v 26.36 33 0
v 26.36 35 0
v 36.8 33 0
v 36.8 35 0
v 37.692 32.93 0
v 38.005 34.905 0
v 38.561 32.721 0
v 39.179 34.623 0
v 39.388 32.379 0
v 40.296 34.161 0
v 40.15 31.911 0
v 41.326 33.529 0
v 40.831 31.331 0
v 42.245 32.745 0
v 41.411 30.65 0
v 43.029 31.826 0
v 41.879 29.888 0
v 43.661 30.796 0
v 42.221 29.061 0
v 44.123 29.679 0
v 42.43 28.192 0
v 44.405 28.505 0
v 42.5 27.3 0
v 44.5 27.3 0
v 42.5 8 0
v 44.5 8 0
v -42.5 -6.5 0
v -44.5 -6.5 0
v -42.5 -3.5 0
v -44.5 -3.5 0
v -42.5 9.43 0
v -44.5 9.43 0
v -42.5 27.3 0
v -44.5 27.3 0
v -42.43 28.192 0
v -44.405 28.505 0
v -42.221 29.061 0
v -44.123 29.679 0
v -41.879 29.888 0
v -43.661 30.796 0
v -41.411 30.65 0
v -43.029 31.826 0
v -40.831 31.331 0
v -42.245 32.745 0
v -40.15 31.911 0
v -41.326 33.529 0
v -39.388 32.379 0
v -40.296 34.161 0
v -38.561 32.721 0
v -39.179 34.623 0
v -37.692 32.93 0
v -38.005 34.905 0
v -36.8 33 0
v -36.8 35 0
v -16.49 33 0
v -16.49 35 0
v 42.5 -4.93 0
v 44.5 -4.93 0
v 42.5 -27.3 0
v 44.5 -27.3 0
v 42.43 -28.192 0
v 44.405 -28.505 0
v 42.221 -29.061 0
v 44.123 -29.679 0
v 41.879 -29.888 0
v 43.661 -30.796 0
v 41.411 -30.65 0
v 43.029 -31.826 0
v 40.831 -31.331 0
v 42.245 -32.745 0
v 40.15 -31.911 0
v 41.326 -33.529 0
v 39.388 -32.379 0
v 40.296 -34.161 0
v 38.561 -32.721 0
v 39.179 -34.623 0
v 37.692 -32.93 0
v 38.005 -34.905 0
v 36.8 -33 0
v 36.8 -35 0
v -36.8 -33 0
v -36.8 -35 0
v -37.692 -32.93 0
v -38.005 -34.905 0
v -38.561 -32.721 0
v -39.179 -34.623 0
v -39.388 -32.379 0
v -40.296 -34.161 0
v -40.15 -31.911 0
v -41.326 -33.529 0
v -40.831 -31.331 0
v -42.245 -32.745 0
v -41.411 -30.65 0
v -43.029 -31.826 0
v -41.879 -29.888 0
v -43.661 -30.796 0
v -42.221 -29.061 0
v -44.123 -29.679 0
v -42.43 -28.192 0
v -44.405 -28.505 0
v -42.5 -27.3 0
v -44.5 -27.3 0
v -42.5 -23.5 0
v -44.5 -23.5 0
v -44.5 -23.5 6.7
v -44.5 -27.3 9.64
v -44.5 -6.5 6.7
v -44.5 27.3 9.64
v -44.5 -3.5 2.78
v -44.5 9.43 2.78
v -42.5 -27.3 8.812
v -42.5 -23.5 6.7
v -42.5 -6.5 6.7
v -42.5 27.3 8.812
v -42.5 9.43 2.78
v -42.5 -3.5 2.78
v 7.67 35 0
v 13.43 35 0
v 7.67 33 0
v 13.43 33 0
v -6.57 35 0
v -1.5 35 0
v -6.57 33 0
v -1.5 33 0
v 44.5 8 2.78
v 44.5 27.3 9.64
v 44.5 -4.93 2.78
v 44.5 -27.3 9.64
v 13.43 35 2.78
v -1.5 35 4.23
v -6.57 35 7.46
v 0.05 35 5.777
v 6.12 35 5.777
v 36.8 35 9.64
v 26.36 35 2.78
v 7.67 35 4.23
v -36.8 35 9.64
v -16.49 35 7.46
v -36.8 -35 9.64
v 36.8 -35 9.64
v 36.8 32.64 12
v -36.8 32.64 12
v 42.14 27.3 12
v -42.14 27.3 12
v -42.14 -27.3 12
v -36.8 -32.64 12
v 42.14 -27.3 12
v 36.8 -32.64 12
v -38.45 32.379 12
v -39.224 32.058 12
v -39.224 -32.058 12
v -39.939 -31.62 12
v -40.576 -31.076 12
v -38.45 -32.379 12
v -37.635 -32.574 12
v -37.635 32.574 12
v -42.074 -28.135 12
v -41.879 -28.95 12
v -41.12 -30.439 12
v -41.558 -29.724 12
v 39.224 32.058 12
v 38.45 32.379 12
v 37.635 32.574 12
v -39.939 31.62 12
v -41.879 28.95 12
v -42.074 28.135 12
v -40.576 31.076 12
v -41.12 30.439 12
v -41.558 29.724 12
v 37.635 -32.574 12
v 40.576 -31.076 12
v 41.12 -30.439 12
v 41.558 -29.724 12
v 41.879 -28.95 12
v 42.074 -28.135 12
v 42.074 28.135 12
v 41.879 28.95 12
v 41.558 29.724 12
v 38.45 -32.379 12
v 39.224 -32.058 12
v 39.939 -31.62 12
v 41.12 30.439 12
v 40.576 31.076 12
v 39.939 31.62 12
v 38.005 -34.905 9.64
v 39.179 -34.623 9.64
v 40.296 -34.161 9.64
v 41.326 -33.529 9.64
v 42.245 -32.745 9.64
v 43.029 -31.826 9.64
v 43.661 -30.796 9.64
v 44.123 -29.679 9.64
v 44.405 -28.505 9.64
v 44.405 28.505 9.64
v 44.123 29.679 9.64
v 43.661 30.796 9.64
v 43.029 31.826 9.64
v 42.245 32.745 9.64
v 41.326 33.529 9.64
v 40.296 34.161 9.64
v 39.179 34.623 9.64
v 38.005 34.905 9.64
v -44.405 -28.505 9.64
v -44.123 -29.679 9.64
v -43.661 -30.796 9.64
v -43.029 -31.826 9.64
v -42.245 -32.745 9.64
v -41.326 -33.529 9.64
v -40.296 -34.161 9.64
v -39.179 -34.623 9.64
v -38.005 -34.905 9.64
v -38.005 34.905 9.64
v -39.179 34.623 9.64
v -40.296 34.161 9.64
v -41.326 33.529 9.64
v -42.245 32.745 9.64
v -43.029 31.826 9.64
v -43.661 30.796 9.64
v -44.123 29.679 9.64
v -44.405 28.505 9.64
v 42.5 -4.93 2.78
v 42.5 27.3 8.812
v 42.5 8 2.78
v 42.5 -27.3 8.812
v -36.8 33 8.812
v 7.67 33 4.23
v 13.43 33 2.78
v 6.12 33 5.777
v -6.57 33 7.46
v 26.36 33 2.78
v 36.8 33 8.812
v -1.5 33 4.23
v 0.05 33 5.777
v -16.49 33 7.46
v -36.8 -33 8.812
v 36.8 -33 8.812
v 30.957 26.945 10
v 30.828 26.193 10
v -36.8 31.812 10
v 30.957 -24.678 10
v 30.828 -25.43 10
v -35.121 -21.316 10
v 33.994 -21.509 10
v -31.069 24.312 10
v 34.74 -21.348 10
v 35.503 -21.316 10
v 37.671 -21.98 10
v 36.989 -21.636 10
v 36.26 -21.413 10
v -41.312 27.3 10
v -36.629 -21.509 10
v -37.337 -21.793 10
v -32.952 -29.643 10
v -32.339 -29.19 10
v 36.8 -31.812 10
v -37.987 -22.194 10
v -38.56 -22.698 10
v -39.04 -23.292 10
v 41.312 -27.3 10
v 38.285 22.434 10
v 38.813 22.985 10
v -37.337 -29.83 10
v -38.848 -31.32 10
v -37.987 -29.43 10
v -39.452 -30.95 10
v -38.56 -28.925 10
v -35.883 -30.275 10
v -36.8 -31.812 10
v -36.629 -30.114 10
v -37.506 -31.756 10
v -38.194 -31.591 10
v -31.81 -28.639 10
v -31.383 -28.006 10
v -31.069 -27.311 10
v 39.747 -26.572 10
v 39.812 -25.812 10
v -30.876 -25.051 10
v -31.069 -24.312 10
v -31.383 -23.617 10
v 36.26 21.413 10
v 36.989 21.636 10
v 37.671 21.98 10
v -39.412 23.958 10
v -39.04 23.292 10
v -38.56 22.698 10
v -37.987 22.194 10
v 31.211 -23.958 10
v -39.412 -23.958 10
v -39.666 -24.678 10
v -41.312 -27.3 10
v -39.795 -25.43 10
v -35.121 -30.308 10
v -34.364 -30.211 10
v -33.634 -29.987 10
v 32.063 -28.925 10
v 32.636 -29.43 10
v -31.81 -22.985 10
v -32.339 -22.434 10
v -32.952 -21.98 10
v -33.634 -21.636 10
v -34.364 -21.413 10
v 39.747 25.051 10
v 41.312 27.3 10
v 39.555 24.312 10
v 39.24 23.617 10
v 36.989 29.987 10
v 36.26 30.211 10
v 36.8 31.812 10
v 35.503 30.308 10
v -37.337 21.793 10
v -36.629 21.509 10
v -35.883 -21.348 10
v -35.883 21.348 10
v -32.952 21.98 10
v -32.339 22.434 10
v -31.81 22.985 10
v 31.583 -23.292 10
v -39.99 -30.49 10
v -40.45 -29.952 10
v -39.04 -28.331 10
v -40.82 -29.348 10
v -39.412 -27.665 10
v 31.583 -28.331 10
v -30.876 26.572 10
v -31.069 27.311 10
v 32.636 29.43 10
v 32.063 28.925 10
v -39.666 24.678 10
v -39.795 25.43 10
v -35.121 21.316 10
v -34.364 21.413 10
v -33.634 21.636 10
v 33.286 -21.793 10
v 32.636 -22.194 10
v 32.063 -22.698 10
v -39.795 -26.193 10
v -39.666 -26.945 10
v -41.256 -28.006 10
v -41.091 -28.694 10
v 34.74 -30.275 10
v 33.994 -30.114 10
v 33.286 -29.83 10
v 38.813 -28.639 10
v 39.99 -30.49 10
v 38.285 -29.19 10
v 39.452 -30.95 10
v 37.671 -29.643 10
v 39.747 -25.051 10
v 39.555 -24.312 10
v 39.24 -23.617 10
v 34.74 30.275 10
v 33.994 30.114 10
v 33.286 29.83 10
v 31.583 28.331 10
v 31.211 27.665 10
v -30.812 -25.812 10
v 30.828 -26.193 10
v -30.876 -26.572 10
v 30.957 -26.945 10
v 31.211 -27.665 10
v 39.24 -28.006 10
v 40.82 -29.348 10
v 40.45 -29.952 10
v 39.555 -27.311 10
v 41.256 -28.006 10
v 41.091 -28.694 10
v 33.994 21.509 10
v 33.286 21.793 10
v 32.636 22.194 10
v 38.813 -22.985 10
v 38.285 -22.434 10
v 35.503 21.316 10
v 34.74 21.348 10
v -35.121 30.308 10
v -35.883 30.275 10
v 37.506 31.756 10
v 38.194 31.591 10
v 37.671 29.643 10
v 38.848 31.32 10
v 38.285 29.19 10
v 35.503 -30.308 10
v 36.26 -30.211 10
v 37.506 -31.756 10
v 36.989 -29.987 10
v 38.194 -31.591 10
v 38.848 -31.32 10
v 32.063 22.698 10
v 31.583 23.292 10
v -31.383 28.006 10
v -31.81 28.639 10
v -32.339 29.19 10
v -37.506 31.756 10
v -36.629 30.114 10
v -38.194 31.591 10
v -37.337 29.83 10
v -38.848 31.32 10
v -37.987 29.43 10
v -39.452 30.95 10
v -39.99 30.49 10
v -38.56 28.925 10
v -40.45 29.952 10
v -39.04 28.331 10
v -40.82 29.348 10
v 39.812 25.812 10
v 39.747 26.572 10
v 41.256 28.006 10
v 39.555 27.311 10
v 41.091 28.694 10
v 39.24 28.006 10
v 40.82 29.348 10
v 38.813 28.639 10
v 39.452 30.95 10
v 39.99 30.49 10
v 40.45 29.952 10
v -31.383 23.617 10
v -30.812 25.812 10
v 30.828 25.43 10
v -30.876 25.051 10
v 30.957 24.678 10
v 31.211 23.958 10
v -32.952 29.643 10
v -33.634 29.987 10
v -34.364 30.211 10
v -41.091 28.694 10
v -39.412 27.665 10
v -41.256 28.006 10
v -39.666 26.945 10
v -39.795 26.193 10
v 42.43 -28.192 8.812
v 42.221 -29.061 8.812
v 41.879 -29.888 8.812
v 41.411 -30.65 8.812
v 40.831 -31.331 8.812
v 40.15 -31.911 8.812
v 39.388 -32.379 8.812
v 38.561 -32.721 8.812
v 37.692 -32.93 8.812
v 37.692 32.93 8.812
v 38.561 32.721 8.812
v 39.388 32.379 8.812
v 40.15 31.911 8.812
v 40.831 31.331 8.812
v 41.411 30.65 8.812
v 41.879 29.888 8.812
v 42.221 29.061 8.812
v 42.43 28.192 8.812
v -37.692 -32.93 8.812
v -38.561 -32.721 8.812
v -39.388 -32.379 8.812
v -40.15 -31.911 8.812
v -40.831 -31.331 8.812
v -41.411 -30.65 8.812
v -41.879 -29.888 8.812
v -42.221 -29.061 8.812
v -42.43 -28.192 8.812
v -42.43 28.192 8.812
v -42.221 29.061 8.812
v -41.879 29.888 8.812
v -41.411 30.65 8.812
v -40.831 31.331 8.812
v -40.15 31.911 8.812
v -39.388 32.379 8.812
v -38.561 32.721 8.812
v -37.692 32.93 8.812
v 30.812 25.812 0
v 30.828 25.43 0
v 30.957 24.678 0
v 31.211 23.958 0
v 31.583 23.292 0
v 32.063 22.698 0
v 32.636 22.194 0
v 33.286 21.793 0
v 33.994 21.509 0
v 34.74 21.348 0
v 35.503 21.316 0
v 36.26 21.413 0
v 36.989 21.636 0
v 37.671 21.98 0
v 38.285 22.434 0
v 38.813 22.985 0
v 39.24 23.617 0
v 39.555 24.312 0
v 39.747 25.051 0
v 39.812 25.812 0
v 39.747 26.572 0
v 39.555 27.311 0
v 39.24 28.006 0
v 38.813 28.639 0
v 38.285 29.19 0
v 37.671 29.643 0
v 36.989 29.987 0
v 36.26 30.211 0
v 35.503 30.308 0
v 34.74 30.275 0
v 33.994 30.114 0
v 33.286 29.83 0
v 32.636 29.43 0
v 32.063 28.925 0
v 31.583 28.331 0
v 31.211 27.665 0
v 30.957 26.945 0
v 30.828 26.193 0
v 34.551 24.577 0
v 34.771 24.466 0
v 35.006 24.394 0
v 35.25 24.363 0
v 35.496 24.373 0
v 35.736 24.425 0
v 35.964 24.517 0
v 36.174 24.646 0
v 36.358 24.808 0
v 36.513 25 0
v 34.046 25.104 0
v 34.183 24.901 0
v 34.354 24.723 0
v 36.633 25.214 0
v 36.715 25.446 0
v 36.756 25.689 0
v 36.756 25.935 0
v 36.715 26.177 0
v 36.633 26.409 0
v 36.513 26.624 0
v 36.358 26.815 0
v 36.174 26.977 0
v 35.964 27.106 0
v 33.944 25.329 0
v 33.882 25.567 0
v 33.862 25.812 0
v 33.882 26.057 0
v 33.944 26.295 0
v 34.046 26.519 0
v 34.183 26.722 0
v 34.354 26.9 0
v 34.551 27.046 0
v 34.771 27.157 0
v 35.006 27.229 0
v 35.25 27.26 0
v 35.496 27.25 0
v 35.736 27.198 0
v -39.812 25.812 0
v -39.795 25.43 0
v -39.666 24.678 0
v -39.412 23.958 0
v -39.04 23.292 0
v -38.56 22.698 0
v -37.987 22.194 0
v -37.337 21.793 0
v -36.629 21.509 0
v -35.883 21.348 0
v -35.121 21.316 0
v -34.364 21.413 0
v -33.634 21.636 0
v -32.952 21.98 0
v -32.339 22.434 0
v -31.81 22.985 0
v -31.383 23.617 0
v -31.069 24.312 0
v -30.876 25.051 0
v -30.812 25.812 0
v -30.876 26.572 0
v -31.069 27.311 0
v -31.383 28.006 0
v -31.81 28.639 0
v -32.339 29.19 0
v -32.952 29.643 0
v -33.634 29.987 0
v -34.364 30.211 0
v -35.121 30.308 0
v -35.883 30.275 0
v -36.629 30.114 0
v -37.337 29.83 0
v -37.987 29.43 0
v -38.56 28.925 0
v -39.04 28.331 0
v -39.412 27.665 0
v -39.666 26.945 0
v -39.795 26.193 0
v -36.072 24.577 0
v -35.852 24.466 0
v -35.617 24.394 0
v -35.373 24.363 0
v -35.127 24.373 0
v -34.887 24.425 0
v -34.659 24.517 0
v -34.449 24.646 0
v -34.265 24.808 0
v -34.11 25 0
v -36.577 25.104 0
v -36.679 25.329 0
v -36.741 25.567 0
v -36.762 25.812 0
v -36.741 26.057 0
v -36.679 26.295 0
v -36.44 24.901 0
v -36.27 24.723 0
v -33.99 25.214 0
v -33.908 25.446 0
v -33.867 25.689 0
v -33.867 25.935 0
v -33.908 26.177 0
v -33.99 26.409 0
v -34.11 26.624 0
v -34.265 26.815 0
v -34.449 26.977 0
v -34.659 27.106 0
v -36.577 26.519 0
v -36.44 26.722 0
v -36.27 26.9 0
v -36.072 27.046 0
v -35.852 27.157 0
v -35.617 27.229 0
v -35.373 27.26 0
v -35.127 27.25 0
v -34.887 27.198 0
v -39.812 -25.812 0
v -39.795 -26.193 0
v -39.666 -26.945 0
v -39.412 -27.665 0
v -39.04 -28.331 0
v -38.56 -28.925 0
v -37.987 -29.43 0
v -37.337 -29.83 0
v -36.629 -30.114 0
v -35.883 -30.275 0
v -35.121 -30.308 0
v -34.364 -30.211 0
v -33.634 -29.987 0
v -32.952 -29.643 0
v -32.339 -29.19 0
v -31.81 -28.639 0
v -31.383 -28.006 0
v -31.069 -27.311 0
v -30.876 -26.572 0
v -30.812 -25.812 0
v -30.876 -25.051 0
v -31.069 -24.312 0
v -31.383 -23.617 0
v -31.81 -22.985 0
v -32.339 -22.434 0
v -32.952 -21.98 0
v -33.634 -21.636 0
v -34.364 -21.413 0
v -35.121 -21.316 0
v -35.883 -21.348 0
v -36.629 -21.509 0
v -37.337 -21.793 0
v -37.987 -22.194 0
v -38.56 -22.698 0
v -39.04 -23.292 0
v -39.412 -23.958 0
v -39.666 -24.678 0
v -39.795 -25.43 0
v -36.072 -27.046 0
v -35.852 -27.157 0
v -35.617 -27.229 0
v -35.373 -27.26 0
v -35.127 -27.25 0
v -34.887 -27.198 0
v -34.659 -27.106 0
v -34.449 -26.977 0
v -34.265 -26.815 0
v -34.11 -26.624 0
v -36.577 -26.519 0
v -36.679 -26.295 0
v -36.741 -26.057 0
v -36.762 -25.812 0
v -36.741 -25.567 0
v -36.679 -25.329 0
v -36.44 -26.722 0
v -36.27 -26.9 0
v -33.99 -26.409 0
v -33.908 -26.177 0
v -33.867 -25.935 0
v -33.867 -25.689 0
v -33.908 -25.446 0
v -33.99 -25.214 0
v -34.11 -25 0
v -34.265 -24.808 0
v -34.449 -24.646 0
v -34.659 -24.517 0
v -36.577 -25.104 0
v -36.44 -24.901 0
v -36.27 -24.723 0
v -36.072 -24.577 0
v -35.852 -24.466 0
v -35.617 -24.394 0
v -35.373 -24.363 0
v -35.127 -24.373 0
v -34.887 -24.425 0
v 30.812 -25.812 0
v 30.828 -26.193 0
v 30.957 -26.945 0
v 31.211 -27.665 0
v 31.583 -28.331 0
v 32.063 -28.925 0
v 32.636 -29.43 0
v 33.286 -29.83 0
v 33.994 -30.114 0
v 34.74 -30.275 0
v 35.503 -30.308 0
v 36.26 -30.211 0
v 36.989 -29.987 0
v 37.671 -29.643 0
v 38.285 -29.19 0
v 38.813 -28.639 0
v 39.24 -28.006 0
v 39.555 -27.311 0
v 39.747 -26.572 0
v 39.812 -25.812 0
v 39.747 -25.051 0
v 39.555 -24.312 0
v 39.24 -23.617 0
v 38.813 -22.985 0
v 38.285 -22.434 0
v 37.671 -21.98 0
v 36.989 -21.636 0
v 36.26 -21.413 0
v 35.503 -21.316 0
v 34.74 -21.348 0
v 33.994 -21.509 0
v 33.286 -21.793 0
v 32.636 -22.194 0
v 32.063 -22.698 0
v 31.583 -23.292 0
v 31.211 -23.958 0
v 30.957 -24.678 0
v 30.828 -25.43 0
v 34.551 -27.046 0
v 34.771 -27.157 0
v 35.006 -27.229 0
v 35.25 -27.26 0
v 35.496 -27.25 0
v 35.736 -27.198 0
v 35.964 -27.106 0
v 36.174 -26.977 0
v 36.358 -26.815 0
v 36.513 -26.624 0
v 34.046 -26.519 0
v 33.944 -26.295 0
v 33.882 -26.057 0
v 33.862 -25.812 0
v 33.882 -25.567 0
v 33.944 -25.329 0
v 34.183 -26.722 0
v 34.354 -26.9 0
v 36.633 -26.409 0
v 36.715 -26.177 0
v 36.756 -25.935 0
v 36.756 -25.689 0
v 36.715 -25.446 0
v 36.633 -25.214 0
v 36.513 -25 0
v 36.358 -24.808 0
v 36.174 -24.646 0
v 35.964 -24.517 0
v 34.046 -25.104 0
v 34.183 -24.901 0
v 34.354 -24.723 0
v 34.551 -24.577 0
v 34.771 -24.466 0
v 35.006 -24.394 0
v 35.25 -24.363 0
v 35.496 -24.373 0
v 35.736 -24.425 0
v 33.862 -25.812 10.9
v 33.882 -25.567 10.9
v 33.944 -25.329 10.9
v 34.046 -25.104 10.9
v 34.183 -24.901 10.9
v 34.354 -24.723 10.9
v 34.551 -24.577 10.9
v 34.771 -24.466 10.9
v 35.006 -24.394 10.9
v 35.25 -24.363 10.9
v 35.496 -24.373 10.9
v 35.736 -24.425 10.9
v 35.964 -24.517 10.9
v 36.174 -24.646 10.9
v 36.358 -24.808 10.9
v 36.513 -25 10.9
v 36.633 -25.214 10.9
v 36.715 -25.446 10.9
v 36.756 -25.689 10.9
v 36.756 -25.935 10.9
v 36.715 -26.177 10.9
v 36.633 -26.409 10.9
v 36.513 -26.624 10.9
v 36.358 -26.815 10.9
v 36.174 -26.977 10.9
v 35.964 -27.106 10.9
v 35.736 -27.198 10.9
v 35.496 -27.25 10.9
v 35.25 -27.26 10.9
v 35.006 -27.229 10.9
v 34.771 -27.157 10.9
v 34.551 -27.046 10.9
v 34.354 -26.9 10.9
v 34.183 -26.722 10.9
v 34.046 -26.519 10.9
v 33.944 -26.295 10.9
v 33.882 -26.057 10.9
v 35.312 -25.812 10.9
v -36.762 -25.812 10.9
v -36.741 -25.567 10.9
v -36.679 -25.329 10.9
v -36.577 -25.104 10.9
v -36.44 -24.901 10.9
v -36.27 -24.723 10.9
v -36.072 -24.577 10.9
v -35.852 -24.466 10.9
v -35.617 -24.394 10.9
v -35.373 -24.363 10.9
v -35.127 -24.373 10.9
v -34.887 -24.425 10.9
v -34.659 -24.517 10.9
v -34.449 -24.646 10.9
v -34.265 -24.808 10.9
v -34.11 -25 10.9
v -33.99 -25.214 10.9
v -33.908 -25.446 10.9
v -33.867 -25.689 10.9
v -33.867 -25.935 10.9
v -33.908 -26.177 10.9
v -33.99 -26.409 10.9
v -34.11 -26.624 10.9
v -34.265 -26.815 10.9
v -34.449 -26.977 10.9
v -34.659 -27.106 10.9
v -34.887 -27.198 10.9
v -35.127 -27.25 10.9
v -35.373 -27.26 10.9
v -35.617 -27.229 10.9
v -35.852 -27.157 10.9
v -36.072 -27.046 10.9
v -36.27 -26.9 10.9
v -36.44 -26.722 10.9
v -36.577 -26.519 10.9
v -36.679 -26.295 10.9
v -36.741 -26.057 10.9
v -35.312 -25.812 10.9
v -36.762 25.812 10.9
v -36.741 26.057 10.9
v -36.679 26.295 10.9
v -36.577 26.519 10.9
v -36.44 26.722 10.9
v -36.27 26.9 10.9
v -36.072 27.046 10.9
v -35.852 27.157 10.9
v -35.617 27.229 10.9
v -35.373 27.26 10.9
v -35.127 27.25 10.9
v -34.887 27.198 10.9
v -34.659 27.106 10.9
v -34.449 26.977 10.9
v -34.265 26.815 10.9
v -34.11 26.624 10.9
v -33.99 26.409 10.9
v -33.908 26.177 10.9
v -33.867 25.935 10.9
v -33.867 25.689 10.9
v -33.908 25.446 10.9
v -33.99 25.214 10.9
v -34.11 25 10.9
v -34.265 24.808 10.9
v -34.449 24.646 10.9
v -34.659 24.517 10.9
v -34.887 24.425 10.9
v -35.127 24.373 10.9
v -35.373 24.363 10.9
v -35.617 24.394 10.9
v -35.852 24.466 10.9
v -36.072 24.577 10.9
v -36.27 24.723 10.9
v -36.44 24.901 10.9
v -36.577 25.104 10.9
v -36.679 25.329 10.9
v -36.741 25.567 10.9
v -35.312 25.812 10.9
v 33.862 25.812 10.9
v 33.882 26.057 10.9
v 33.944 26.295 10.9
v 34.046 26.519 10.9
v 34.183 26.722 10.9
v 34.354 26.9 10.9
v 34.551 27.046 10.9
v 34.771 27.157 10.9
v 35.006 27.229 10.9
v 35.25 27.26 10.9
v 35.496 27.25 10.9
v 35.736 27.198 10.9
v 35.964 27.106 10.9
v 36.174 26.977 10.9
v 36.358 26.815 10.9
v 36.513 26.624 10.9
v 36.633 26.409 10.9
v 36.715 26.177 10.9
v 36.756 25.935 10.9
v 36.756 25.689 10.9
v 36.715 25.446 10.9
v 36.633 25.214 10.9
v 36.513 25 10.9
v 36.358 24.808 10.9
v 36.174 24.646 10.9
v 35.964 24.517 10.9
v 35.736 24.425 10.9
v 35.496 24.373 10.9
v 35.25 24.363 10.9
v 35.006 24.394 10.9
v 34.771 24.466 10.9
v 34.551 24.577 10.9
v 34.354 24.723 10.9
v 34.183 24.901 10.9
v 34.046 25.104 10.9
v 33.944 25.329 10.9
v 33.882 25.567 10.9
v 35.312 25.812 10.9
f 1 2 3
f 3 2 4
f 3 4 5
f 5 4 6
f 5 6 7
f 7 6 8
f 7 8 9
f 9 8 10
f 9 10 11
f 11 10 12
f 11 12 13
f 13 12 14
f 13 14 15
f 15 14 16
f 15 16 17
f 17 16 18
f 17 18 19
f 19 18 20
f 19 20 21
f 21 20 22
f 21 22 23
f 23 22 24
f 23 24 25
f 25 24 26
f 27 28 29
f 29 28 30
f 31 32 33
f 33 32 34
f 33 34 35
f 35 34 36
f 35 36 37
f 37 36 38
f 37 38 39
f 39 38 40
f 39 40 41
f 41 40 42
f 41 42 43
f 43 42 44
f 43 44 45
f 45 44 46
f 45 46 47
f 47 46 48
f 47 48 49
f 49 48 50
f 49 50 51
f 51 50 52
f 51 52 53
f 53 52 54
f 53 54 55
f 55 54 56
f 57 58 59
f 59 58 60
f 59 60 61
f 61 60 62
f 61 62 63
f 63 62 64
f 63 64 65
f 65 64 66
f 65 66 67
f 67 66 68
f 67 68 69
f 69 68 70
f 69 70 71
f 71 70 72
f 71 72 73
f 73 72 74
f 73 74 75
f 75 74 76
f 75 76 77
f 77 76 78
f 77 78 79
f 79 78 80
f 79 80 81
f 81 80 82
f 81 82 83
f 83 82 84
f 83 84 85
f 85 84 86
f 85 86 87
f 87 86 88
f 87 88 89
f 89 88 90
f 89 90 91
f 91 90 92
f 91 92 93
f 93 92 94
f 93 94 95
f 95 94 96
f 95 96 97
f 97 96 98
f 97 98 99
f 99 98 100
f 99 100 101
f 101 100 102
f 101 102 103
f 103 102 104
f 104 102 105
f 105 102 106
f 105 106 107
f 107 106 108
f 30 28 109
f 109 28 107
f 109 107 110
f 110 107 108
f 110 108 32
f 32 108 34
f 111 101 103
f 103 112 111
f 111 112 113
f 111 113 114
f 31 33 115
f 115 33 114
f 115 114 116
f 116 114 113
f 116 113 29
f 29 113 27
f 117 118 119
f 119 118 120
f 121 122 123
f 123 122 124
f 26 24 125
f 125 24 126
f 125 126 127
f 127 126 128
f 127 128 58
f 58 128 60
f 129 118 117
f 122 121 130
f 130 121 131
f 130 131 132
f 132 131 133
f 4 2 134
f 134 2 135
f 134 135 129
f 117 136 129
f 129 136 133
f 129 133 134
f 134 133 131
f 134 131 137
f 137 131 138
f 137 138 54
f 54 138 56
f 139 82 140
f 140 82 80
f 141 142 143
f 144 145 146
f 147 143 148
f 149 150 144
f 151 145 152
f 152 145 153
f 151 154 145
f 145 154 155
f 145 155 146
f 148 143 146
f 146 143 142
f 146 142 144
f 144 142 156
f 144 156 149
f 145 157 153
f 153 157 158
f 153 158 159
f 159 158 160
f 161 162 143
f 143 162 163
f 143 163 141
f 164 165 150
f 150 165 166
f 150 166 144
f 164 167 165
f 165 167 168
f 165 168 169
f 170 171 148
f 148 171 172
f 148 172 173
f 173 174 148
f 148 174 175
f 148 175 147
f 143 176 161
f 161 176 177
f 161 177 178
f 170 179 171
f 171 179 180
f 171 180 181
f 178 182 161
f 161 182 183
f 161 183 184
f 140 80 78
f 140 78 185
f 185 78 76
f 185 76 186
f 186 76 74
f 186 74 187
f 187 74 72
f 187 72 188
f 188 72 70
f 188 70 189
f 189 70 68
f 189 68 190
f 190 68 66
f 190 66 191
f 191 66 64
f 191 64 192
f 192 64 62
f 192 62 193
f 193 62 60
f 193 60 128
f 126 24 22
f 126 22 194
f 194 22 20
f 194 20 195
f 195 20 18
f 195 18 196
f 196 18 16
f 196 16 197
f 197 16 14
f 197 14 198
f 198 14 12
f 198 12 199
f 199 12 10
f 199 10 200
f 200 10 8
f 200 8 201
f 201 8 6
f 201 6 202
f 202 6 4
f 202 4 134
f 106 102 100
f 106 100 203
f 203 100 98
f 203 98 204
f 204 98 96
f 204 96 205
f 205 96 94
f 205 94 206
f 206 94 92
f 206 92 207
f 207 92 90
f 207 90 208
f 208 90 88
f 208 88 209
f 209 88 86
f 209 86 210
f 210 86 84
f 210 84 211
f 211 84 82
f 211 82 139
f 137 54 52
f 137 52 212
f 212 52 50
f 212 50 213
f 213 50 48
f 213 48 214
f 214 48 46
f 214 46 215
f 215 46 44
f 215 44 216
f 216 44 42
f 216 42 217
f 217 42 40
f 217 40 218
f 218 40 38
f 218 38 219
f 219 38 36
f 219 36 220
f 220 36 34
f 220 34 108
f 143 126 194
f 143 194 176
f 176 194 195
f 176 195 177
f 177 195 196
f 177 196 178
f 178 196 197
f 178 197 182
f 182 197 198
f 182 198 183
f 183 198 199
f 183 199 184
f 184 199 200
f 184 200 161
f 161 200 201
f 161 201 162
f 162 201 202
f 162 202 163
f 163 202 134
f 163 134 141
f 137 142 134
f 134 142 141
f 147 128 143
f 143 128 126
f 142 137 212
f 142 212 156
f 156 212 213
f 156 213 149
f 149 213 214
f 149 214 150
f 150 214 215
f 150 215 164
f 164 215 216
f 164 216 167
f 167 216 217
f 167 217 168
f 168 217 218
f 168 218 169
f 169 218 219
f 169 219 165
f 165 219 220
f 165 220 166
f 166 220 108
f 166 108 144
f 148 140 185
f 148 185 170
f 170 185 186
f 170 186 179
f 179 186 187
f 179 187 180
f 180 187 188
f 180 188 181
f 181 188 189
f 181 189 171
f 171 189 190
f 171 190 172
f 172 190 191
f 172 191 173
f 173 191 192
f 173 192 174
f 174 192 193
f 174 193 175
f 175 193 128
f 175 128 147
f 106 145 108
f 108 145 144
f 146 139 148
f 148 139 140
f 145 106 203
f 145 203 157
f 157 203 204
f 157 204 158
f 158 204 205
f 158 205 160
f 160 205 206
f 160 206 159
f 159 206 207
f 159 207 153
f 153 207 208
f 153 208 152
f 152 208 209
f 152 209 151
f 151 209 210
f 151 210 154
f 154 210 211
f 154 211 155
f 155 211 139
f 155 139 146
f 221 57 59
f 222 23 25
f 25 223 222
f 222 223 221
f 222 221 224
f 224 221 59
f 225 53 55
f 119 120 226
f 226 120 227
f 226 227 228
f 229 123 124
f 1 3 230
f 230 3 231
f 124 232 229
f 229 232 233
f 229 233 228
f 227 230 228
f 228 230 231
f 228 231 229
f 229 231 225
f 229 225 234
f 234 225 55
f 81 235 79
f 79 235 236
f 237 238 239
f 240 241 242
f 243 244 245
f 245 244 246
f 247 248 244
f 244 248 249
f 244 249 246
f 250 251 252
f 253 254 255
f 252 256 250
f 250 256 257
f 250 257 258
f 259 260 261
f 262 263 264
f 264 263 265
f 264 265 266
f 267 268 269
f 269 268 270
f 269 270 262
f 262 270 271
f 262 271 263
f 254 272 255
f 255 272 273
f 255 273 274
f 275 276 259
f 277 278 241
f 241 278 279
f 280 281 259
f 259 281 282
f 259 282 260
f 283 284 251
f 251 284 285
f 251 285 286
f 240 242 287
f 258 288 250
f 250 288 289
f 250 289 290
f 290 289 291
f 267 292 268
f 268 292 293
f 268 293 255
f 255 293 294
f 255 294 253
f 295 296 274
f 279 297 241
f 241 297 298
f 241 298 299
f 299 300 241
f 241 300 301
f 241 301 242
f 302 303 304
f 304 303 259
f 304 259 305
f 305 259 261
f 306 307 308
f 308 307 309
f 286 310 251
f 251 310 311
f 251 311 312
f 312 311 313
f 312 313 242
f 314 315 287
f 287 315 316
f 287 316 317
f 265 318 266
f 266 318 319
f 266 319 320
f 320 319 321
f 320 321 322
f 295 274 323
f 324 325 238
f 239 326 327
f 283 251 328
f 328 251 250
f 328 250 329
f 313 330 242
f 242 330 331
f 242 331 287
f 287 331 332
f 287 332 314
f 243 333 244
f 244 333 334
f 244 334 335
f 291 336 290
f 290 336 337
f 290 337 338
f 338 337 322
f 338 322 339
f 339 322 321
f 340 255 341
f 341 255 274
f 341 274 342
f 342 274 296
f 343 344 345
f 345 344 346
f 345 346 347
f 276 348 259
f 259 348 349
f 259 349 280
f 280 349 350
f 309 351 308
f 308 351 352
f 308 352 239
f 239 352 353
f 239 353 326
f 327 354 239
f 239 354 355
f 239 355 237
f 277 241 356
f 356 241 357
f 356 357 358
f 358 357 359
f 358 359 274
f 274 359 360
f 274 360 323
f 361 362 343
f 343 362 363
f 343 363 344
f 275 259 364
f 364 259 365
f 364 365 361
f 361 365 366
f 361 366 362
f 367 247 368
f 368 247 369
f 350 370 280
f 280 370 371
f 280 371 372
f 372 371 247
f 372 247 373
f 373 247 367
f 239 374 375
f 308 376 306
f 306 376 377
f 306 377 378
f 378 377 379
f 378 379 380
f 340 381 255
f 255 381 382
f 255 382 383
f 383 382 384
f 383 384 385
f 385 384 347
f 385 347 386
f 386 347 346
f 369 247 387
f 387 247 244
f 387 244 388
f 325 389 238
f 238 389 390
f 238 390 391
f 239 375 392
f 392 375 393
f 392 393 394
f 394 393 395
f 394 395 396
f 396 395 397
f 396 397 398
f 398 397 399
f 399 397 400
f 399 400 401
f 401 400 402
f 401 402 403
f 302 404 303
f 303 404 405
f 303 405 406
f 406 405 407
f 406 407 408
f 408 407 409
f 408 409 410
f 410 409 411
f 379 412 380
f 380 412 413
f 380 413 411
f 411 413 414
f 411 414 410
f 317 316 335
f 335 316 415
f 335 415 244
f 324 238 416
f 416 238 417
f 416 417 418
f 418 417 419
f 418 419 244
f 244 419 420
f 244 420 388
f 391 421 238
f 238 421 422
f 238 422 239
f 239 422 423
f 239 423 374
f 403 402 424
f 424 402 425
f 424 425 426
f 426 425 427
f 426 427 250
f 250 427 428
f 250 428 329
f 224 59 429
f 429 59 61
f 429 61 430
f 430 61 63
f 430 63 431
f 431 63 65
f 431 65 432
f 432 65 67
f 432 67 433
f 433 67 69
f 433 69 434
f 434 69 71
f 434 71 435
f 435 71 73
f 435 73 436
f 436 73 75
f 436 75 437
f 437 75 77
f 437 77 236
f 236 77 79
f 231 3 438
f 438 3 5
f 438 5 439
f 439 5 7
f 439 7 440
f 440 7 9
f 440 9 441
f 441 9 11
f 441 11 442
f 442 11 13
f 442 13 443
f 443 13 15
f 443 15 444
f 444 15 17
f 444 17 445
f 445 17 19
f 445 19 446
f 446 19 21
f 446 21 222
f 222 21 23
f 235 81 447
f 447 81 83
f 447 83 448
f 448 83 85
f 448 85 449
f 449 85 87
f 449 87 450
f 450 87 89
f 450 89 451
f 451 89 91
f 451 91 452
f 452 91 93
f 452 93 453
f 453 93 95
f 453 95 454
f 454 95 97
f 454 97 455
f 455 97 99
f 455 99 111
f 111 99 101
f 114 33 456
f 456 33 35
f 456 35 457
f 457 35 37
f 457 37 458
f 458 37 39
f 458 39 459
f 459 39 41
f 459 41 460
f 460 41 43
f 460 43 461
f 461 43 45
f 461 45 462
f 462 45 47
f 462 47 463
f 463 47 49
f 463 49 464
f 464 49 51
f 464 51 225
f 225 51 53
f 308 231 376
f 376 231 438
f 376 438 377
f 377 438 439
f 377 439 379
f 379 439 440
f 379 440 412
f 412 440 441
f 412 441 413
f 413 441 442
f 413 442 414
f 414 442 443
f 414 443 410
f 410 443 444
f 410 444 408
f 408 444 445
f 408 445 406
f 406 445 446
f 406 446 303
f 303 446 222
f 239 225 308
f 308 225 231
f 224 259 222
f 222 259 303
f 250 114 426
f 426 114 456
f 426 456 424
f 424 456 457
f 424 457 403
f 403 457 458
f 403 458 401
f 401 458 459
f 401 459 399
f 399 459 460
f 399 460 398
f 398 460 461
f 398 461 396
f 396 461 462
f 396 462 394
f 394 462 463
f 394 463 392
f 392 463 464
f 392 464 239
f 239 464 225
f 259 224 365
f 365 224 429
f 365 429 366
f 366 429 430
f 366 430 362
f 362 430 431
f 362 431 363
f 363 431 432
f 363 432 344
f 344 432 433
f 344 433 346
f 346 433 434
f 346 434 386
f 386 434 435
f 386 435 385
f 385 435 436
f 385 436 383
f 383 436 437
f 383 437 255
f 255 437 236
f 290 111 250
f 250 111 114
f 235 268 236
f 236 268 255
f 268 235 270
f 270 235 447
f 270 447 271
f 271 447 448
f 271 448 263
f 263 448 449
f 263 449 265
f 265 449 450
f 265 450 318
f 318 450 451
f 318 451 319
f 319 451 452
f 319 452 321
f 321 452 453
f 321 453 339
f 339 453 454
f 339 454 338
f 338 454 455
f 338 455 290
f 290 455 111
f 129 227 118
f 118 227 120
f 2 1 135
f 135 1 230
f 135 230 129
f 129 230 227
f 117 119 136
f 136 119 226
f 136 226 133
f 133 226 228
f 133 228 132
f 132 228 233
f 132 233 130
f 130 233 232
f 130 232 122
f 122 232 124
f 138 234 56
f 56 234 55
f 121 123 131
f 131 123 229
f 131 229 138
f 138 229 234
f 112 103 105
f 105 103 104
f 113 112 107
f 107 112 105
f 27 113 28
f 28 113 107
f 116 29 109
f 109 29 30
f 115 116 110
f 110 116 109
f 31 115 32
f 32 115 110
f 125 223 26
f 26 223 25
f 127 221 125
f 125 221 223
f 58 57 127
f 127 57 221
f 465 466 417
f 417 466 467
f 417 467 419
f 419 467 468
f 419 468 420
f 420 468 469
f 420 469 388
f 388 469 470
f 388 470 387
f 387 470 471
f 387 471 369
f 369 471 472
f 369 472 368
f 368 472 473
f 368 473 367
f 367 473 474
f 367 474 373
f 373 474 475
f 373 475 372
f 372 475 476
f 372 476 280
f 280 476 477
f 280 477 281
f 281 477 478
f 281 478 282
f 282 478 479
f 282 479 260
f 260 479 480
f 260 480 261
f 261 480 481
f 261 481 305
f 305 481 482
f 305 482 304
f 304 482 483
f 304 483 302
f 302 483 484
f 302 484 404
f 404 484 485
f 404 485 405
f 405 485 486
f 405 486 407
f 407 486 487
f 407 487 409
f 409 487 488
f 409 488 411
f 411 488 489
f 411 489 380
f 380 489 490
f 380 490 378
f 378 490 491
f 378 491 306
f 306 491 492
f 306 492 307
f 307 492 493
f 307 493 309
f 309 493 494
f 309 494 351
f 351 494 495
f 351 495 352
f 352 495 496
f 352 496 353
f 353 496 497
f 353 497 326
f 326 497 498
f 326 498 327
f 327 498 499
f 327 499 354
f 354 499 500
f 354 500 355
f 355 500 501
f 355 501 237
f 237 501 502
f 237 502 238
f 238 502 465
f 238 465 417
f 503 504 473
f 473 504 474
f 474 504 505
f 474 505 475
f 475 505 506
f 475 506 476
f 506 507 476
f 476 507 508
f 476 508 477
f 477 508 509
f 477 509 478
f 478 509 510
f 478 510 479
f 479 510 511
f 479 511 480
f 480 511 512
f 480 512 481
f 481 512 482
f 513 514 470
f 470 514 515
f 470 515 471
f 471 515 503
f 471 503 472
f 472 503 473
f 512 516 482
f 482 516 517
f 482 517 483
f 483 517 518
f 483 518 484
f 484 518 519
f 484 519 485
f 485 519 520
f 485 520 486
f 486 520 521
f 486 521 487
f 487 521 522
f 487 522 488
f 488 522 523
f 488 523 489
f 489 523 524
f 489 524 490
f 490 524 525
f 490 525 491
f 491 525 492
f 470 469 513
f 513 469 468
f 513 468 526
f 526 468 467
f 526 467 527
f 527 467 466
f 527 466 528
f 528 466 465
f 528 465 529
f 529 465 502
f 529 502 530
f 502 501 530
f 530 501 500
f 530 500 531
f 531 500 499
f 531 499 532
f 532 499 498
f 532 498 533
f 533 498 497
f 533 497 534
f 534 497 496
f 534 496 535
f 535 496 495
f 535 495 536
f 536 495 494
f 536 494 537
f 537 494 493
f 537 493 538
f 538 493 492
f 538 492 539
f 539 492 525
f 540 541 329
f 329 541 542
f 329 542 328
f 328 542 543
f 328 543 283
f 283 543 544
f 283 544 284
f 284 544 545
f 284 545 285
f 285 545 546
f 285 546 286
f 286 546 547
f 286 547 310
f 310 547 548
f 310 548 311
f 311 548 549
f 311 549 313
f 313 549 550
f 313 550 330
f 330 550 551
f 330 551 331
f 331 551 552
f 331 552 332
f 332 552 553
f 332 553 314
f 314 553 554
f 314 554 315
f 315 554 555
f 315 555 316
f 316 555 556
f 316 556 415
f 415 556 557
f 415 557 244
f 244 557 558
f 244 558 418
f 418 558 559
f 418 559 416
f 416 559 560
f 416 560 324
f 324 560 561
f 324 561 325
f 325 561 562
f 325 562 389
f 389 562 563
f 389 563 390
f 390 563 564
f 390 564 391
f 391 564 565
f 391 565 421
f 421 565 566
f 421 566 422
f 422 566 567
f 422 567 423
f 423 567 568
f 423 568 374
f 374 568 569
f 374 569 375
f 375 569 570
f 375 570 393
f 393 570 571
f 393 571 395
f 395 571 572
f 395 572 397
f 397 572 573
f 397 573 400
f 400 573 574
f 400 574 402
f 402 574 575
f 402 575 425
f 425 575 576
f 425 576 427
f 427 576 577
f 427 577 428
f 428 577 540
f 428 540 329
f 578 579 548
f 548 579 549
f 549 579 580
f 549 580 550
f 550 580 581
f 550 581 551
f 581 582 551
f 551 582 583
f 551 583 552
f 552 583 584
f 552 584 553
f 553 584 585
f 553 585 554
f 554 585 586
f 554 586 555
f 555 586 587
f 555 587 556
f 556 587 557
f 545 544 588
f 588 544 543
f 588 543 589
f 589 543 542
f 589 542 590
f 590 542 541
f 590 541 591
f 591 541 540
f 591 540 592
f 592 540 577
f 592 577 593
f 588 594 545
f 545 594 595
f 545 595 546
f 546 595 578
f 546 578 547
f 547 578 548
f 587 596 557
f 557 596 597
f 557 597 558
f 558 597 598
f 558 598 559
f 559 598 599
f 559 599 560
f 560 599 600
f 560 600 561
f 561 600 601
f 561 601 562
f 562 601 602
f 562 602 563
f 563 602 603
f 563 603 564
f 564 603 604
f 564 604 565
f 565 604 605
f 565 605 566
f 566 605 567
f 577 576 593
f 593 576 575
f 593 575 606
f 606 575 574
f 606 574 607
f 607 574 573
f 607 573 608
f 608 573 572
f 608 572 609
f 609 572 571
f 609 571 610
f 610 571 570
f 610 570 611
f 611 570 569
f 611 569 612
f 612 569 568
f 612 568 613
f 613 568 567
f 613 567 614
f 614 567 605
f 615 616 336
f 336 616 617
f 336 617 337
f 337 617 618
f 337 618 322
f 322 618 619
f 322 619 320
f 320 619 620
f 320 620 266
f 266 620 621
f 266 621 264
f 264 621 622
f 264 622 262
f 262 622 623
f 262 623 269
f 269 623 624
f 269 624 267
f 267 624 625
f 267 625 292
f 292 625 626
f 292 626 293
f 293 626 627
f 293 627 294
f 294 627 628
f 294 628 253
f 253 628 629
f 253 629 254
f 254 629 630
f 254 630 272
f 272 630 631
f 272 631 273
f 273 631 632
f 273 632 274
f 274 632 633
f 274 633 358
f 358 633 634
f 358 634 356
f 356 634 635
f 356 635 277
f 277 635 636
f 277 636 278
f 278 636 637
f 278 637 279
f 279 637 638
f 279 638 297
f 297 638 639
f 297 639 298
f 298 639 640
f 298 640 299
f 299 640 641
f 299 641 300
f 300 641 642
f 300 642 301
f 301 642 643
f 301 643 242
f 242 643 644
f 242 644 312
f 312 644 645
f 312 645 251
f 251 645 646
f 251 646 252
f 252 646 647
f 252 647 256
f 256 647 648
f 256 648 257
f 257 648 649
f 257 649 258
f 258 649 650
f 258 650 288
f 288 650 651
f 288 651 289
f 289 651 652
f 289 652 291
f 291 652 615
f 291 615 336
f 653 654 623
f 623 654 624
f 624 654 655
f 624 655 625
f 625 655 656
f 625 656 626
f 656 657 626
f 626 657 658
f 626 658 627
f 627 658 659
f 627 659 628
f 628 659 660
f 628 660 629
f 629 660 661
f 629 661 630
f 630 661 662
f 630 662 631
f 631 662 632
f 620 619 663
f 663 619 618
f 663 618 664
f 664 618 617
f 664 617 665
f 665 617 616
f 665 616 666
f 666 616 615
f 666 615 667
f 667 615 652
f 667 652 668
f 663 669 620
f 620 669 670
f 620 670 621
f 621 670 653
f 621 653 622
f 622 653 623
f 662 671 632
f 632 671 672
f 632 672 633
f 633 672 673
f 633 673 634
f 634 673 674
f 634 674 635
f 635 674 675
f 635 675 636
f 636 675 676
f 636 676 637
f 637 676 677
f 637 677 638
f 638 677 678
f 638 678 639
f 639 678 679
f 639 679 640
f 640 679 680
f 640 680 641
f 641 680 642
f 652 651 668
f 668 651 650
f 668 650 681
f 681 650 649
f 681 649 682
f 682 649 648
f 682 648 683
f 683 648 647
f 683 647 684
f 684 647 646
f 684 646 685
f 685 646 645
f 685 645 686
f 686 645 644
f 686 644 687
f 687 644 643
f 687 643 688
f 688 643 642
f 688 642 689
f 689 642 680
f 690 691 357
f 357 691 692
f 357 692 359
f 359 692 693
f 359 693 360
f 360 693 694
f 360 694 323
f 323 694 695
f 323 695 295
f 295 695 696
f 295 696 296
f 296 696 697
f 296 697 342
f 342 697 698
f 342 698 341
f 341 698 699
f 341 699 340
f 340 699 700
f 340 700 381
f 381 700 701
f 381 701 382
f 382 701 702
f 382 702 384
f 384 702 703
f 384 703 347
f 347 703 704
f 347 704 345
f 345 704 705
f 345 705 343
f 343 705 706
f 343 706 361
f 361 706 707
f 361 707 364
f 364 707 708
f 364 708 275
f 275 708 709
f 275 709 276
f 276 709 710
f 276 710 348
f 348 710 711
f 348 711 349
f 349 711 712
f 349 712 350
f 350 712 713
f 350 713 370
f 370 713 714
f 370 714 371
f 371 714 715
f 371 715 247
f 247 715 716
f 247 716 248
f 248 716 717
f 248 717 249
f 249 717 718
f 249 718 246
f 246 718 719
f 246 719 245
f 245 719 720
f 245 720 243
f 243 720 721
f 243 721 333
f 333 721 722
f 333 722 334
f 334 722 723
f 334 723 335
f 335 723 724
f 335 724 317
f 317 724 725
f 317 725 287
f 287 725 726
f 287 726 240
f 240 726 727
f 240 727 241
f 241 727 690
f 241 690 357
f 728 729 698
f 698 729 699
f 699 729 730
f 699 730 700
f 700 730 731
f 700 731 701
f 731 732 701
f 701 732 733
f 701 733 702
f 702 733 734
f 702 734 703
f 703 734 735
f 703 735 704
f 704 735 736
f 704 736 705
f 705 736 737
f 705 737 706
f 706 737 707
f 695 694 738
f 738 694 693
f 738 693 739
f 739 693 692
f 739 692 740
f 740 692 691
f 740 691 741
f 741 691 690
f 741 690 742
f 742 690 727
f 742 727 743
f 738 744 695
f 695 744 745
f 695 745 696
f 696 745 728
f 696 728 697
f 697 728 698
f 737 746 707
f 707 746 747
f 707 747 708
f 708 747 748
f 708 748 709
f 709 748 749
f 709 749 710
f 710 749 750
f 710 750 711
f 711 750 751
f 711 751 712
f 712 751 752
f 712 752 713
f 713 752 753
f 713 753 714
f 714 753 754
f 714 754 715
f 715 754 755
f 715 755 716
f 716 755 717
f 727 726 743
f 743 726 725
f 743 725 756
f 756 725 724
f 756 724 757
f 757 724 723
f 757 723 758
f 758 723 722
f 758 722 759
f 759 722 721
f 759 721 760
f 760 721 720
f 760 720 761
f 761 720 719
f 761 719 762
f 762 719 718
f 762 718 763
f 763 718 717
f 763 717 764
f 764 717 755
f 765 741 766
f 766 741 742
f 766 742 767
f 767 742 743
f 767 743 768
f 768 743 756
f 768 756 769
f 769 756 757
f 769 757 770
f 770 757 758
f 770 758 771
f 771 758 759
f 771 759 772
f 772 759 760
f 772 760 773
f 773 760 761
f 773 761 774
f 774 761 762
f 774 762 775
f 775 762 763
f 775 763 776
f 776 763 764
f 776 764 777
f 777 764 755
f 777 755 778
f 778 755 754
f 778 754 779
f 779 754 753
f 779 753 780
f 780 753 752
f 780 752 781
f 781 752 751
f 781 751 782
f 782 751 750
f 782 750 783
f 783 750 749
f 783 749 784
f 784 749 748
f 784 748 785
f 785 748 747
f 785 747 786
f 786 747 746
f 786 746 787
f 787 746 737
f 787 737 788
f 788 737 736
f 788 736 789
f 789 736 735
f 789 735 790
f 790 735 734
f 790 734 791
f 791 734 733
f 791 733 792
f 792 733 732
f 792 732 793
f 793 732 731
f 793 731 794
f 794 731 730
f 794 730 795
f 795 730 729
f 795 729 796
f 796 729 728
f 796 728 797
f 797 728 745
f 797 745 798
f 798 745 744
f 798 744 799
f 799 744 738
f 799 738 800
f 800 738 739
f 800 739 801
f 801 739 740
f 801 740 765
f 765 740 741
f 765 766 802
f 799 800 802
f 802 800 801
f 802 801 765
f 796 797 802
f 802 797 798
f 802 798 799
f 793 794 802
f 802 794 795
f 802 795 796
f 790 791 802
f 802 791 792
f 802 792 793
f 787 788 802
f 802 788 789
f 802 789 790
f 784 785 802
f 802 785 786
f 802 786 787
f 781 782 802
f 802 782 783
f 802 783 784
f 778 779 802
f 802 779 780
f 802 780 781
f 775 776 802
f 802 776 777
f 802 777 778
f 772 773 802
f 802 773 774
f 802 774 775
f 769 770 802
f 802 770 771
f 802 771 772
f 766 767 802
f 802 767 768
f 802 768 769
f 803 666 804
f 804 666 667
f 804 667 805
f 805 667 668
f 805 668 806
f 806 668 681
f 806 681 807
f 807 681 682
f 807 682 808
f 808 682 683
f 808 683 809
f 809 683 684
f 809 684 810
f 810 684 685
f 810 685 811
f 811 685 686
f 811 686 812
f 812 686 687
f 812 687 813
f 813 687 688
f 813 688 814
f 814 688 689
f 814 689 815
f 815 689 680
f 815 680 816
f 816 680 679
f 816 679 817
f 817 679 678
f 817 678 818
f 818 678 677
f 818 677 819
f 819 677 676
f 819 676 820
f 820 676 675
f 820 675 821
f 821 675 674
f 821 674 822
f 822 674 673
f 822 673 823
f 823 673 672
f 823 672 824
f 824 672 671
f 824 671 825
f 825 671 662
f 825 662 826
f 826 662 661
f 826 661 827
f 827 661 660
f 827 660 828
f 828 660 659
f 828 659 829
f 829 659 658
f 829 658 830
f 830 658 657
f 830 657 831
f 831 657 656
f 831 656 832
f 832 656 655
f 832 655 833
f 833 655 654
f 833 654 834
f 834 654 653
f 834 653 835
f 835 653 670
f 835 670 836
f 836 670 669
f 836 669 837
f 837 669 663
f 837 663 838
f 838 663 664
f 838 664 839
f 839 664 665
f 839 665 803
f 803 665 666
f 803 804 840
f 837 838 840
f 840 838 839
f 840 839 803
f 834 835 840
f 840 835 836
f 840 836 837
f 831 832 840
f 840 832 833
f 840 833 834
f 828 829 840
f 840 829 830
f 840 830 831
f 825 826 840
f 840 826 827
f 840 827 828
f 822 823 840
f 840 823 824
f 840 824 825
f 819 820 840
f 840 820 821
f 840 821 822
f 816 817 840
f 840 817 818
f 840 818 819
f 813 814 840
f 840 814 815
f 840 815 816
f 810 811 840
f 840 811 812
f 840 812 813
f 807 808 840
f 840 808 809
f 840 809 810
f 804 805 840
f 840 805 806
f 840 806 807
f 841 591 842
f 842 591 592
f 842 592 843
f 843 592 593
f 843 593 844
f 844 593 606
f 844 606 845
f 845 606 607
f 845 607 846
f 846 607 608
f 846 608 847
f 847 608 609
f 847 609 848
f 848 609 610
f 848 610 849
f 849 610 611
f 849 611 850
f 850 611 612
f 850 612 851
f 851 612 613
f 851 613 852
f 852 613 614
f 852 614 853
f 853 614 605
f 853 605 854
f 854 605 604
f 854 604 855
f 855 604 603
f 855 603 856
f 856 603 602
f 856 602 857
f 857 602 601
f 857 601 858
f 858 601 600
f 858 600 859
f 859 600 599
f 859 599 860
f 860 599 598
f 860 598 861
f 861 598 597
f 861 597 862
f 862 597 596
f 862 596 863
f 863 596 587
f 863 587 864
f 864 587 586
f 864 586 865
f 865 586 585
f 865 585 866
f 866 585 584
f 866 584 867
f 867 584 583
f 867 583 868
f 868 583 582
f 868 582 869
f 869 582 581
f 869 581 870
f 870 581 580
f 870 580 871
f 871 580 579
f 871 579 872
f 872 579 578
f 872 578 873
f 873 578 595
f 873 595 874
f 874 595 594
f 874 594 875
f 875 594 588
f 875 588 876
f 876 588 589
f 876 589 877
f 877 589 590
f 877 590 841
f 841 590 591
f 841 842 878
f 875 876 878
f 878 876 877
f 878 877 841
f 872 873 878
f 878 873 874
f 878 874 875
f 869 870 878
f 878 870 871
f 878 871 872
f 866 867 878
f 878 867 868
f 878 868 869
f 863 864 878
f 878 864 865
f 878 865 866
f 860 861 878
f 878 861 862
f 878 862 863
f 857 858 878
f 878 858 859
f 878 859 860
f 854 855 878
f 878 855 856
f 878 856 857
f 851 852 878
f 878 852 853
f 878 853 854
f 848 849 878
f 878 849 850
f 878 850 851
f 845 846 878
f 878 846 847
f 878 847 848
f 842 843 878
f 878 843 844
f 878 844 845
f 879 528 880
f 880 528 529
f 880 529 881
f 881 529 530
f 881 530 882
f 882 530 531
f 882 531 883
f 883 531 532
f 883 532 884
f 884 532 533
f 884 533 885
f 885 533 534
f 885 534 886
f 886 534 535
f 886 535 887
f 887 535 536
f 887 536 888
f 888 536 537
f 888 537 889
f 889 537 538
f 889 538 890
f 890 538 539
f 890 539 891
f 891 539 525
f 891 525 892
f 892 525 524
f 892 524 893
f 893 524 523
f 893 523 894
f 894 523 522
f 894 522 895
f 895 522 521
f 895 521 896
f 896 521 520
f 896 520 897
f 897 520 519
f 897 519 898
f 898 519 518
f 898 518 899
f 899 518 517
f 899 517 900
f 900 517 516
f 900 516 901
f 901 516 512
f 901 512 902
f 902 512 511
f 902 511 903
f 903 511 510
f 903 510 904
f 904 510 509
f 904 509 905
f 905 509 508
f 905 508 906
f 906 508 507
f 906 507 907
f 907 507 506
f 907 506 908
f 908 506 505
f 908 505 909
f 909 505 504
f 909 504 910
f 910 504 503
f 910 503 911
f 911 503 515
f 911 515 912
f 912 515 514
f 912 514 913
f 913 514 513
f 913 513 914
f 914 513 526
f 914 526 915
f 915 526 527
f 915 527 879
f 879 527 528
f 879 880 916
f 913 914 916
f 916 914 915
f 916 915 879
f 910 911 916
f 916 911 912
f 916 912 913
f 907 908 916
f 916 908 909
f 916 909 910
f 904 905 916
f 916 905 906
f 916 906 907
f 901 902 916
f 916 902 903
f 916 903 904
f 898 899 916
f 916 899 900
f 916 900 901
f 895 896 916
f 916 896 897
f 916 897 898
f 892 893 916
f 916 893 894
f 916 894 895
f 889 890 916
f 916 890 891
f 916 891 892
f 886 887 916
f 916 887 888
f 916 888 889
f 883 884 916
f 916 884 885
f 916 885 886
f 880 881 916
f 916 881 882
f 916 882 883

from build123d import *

# Parameters (mm, degrees)
SKETCH_1_W                      = 89
SKETCH_1_H                      = 70
EXTRUDE_1_DEPTH                 = 12
FILLET_1_R                      = 7.7
CHAMFER_1_SIZE                  = 2.36
SHELL_1_T                       = -2
CUT_EXTRUDE_1_REACH             = 72
SKETCH_2_W                      = 9.92
SKETCH_2_H                      = 7.46
SKETCH_2_W_2                    = 12.93
SKETCH_2_H_2                    = 2.78
CUT_EXTRUDE_2_REACH             = 91
SKETCH_3_W                      = 2.78
SKETCH_3_H                      = 12.93
SKETCH_3_W_2                    = 6.7
SKETCH_3_H_2                    = 17
CUT_EXTRUDE_2_DIRECTION_2_DEPTH = 1
CUT_EXTRUDE_3_REACH             = 91
SKETCH_4_W                      = 2.78
SKETCH_4_H                      = 12.93
SKETCH_5_R                      = 4.5
EXTRUDE_2_DEPTH                 = 10
SKETCH_6_R                      = 1.45
CUT_EXTRUDE_4_DEPTH             = 10.9


with BuildPart() as part:
    # 草圖1 → 填料-伸長1 (new body)
    with BuildSketch(Plane.XY):
        Rectangle(SKETCH_1_W, SKETCH_1_H)
    extrude(amount=EXTRUDE_1_DEPTH)

    # 圓角1
    fillet_1_edges = [part.edges().sort_by_distance(p)[0] for p in [
        (44.5, -35, 6),
        (-44.5, -35, 6),
        (-44.5, 35, 6),
        (44.5, 35, 6),
    ]]
    fillet(fillet_1_edges, radius=FILLET_1_R)

    # 導角1
    chamfer_1_edges = [part.edges().sort_by_distance(p)[0] for p in [
        (44.5, 0, 12),
        (0, -35, 12),
        (0, 35, 12),
        (-44.5, 0, 12),
        (-42.244722215, 32.744722215, 12),
        (-42.244722215, -32.744722215, 12),
        (42.244722215, 32.744722215, 12),
        (42.244722215, -32.744722215, 12),
    ]]
    chamfer(chamfer_1_edges, length=CHAMFER_1_SIZE)

    # 薄殼1
    shell_1_openings = [part.faces().sort_by_distance(p)[0] for p in [
        (0, 0, 0),
    ]]
    offset(amount=SHELL_1_T, openings=shell_1_openings, kind=Kind.INTERSECTION)

    # 草圖2 → 除料-伸長1 (cut, up to next)
    with BuildSketch(Plane(origin=(0, 35, 0), x_dir=(1, 0, 0), z_dir=(0, 1, 0)), mode=Mode.PRIVATE) as cut_extrude_1_sk1:
        with Locations((-11.53, -3.73)):
            Rectangle(SKETCH_2_W, SKETCH_2_H)
    cut_extrude_1_tool1 = extrude(cut_extrude_1_sk1.sketch, amount=-CUT_EXTRUDE_1_REACH, mode=Mode.PRIVATE) & part.part
    add(cut_extrude_1_tool1.solids().sort_by_distance((-11.53, 35, 3.73))[0], mode=Mode.SUBTRACT)
    # 草圖2 → 除料-伸長1 (cut, up to next)
    with BuildSketch(Plane(origin=(0, 35, 0), x_dir=(1, 0, 0), z_dir=(0, 1, 0)), mode=Mode.PRIVATE) as cut_extrude_1_sk2:
        Polygon((-1.5, 0), (-1.5, -4.23), (0.05, -5.777126368), (6.12, -5.777126368), (7.67, -4.23), (7.67, 0), align=None)
    cut_extrude_1_tool2 = extrude(cut_extrude_1_sk2.sketch, amount=-CUT_EXTRUDE_1_REACH, mode=Mode.PRIVATE) & part.part
    add(cut_extrude_1_tool2.solids().sort_by_distance((3.085, 35, 2.77606))[0], mode=Mode.SUBTRACT)
    # 草圖2 → 除料-伸長1 (cut, up to next)
    with BuildSketch(Plane(origin=(0, 35, 0), x_dir=(1, 0, 0), z_dir=(0, 1, 0)), mode=Mode.PRIVATE) as cut_extrude_1_sk3:
        with Locations((19.895, -1.39)):
            Rectangle(SKETCH_2_W_2, SKETCH_2_H_2)
    cut_extrude_1_tool3 = extrude(cut_extrude_1_sk3.sketch, amount=-CUT_EXTRUDE_1_REACH, mode=Mode.PRIVATE) & part.part
    add(cut_extrude_1_tool3.solids().sort_by_distance((19.895, 35, 1.39))[0], mode=Mode.SUBTRACT)

    # 草圖3 → 除料-伸長2 (cut, up to next)
    with BuildSketch(Plane.ZY.offset(44.5), mode=Mode.PRIVATE) as cut_extrude_2_sk1:
        with Locations((1.39, 2.965)):
            Rectangle(SKETCH_3_W, SKETCH_3_H)
    cut_extrude_2_tool1 = extrude(cut_extrude_2_sk1.sketch, amount=-CUT_EXTRUDE_2_REACH, mode=Mode.PRIVATE) & part.part
    add(cut_extrude_2_tool1.solids().sort_by_distance((-44.5, 2.965, 1.39))[0], mode=Mode.SUBTRACT)
    # 草圖3 → 除料-伸長2 (cut, up to next)
    with BuildSketch(Plane.ZY.offset(44.5), mode=Mode.PRIVATE) as cut_extrude_2_sk2:
        with Locations((3.35, -15)):
            Rectangle(SKETCH_3_W_2, SKETCH_3_H_2)
    cut_extrude_2_tool2 = extrude(cut_extrude_2_sk2.sketch, amount=-CUT_EXTRUDE_2_REACH, mode=Mode.PRIVATE) & part.part
    add(cut_extrude_2_tool2.solids().sort_by_distance((-44.5, -15, 3.35))[0], mode=Mode.SUBTRACT)

    # 草圖3 → 除料-伸長2 direction 2 (cut)
    with BuildSketch(Plane.ZY.offset(44.5)):
        with Locations((1.39, 2.965)):
            Rectangle(SKETCH_3_W, SKETCH_3_H)
        with Locations((3.35, -15)):
            Rectangle(SKETCH_3_W_2, SKETCH_3_H_2)
    extrude(amount=CUT_EXTRUDE_2_DIRECTION_2_DEPTH, mode=Mode.SUBTRACT)

    # 草圖4 → 除料-伸長3 (cut, up to next)
    with BuildSketch(Plane(origin=(44.5, 0, 0), x_dir=(0, 0, -1), z_dir=(1, 0, 0)), mode=Mode.PRIVATE) as cut_extrude_3_sk1:
        with Locations((-1.39, 1.535)):
            Rectangle(SKETCH_4_W, SKETCH_4_H)
    cut_extrude_3_tool1 = extrude(cut_extrude_3_sk1.sketch, amount=-CUT_EXTRUDE_3_REACH, mode=Mode.PRIVATE) & part.part
    add(cut_extrude_3_tool1.solids().sort_by_distance((44.5, 1.535, 1.39))[0], mode=Mode.SUBTRACT)

    # 草圖5 → 填料-伸長2 (add)
    with BuildSketch(Plane(origin=(0, 0, 10), x_dir=(-1, 0, 0), z_dir=(0, 0, -1))):
        with Locations((-35.311572875, 25.811572875)):
            Circle(SKETCH_5_R)
        with Locations((35.311572875, 25.811572875)):
            Circle(SKETCH_5_R)
        with Locations((35.311572875, -25.811572875)):
            Circle(SKETCH_5_R)
        with Locations((-35.311572875, -25.811572875)):
            Circle(SKETCH_5_R)
    extrude(amount=EXTRUDE_2_DEPTH)

    # 草圖6 → 除料-伸長4 (cut)
    with BuildSketch(Plane(origin=(0, 0, 0), x_dir=(-1, 0, 0), z_dir=(0, 0, -1))):
        with Locations((-35.311572875, 25.811572875)):
            Circle(SKETCH_6_R)
        with Locations((35.311572875, 25.811572875)):
            Circle(SKETCH_6_R)
        with Locations((35.311572875, -25.811572875)):
            Circle(SKETCH_6_R)
        with Locations((-35.311572875, -25.811572875)):
            Circle(SKETCH_6_R)
    extrude(amount=-CUT_EXTRUDE_4_DEPTH, mode=Mode.SUBTRACT)


solid = part.part
